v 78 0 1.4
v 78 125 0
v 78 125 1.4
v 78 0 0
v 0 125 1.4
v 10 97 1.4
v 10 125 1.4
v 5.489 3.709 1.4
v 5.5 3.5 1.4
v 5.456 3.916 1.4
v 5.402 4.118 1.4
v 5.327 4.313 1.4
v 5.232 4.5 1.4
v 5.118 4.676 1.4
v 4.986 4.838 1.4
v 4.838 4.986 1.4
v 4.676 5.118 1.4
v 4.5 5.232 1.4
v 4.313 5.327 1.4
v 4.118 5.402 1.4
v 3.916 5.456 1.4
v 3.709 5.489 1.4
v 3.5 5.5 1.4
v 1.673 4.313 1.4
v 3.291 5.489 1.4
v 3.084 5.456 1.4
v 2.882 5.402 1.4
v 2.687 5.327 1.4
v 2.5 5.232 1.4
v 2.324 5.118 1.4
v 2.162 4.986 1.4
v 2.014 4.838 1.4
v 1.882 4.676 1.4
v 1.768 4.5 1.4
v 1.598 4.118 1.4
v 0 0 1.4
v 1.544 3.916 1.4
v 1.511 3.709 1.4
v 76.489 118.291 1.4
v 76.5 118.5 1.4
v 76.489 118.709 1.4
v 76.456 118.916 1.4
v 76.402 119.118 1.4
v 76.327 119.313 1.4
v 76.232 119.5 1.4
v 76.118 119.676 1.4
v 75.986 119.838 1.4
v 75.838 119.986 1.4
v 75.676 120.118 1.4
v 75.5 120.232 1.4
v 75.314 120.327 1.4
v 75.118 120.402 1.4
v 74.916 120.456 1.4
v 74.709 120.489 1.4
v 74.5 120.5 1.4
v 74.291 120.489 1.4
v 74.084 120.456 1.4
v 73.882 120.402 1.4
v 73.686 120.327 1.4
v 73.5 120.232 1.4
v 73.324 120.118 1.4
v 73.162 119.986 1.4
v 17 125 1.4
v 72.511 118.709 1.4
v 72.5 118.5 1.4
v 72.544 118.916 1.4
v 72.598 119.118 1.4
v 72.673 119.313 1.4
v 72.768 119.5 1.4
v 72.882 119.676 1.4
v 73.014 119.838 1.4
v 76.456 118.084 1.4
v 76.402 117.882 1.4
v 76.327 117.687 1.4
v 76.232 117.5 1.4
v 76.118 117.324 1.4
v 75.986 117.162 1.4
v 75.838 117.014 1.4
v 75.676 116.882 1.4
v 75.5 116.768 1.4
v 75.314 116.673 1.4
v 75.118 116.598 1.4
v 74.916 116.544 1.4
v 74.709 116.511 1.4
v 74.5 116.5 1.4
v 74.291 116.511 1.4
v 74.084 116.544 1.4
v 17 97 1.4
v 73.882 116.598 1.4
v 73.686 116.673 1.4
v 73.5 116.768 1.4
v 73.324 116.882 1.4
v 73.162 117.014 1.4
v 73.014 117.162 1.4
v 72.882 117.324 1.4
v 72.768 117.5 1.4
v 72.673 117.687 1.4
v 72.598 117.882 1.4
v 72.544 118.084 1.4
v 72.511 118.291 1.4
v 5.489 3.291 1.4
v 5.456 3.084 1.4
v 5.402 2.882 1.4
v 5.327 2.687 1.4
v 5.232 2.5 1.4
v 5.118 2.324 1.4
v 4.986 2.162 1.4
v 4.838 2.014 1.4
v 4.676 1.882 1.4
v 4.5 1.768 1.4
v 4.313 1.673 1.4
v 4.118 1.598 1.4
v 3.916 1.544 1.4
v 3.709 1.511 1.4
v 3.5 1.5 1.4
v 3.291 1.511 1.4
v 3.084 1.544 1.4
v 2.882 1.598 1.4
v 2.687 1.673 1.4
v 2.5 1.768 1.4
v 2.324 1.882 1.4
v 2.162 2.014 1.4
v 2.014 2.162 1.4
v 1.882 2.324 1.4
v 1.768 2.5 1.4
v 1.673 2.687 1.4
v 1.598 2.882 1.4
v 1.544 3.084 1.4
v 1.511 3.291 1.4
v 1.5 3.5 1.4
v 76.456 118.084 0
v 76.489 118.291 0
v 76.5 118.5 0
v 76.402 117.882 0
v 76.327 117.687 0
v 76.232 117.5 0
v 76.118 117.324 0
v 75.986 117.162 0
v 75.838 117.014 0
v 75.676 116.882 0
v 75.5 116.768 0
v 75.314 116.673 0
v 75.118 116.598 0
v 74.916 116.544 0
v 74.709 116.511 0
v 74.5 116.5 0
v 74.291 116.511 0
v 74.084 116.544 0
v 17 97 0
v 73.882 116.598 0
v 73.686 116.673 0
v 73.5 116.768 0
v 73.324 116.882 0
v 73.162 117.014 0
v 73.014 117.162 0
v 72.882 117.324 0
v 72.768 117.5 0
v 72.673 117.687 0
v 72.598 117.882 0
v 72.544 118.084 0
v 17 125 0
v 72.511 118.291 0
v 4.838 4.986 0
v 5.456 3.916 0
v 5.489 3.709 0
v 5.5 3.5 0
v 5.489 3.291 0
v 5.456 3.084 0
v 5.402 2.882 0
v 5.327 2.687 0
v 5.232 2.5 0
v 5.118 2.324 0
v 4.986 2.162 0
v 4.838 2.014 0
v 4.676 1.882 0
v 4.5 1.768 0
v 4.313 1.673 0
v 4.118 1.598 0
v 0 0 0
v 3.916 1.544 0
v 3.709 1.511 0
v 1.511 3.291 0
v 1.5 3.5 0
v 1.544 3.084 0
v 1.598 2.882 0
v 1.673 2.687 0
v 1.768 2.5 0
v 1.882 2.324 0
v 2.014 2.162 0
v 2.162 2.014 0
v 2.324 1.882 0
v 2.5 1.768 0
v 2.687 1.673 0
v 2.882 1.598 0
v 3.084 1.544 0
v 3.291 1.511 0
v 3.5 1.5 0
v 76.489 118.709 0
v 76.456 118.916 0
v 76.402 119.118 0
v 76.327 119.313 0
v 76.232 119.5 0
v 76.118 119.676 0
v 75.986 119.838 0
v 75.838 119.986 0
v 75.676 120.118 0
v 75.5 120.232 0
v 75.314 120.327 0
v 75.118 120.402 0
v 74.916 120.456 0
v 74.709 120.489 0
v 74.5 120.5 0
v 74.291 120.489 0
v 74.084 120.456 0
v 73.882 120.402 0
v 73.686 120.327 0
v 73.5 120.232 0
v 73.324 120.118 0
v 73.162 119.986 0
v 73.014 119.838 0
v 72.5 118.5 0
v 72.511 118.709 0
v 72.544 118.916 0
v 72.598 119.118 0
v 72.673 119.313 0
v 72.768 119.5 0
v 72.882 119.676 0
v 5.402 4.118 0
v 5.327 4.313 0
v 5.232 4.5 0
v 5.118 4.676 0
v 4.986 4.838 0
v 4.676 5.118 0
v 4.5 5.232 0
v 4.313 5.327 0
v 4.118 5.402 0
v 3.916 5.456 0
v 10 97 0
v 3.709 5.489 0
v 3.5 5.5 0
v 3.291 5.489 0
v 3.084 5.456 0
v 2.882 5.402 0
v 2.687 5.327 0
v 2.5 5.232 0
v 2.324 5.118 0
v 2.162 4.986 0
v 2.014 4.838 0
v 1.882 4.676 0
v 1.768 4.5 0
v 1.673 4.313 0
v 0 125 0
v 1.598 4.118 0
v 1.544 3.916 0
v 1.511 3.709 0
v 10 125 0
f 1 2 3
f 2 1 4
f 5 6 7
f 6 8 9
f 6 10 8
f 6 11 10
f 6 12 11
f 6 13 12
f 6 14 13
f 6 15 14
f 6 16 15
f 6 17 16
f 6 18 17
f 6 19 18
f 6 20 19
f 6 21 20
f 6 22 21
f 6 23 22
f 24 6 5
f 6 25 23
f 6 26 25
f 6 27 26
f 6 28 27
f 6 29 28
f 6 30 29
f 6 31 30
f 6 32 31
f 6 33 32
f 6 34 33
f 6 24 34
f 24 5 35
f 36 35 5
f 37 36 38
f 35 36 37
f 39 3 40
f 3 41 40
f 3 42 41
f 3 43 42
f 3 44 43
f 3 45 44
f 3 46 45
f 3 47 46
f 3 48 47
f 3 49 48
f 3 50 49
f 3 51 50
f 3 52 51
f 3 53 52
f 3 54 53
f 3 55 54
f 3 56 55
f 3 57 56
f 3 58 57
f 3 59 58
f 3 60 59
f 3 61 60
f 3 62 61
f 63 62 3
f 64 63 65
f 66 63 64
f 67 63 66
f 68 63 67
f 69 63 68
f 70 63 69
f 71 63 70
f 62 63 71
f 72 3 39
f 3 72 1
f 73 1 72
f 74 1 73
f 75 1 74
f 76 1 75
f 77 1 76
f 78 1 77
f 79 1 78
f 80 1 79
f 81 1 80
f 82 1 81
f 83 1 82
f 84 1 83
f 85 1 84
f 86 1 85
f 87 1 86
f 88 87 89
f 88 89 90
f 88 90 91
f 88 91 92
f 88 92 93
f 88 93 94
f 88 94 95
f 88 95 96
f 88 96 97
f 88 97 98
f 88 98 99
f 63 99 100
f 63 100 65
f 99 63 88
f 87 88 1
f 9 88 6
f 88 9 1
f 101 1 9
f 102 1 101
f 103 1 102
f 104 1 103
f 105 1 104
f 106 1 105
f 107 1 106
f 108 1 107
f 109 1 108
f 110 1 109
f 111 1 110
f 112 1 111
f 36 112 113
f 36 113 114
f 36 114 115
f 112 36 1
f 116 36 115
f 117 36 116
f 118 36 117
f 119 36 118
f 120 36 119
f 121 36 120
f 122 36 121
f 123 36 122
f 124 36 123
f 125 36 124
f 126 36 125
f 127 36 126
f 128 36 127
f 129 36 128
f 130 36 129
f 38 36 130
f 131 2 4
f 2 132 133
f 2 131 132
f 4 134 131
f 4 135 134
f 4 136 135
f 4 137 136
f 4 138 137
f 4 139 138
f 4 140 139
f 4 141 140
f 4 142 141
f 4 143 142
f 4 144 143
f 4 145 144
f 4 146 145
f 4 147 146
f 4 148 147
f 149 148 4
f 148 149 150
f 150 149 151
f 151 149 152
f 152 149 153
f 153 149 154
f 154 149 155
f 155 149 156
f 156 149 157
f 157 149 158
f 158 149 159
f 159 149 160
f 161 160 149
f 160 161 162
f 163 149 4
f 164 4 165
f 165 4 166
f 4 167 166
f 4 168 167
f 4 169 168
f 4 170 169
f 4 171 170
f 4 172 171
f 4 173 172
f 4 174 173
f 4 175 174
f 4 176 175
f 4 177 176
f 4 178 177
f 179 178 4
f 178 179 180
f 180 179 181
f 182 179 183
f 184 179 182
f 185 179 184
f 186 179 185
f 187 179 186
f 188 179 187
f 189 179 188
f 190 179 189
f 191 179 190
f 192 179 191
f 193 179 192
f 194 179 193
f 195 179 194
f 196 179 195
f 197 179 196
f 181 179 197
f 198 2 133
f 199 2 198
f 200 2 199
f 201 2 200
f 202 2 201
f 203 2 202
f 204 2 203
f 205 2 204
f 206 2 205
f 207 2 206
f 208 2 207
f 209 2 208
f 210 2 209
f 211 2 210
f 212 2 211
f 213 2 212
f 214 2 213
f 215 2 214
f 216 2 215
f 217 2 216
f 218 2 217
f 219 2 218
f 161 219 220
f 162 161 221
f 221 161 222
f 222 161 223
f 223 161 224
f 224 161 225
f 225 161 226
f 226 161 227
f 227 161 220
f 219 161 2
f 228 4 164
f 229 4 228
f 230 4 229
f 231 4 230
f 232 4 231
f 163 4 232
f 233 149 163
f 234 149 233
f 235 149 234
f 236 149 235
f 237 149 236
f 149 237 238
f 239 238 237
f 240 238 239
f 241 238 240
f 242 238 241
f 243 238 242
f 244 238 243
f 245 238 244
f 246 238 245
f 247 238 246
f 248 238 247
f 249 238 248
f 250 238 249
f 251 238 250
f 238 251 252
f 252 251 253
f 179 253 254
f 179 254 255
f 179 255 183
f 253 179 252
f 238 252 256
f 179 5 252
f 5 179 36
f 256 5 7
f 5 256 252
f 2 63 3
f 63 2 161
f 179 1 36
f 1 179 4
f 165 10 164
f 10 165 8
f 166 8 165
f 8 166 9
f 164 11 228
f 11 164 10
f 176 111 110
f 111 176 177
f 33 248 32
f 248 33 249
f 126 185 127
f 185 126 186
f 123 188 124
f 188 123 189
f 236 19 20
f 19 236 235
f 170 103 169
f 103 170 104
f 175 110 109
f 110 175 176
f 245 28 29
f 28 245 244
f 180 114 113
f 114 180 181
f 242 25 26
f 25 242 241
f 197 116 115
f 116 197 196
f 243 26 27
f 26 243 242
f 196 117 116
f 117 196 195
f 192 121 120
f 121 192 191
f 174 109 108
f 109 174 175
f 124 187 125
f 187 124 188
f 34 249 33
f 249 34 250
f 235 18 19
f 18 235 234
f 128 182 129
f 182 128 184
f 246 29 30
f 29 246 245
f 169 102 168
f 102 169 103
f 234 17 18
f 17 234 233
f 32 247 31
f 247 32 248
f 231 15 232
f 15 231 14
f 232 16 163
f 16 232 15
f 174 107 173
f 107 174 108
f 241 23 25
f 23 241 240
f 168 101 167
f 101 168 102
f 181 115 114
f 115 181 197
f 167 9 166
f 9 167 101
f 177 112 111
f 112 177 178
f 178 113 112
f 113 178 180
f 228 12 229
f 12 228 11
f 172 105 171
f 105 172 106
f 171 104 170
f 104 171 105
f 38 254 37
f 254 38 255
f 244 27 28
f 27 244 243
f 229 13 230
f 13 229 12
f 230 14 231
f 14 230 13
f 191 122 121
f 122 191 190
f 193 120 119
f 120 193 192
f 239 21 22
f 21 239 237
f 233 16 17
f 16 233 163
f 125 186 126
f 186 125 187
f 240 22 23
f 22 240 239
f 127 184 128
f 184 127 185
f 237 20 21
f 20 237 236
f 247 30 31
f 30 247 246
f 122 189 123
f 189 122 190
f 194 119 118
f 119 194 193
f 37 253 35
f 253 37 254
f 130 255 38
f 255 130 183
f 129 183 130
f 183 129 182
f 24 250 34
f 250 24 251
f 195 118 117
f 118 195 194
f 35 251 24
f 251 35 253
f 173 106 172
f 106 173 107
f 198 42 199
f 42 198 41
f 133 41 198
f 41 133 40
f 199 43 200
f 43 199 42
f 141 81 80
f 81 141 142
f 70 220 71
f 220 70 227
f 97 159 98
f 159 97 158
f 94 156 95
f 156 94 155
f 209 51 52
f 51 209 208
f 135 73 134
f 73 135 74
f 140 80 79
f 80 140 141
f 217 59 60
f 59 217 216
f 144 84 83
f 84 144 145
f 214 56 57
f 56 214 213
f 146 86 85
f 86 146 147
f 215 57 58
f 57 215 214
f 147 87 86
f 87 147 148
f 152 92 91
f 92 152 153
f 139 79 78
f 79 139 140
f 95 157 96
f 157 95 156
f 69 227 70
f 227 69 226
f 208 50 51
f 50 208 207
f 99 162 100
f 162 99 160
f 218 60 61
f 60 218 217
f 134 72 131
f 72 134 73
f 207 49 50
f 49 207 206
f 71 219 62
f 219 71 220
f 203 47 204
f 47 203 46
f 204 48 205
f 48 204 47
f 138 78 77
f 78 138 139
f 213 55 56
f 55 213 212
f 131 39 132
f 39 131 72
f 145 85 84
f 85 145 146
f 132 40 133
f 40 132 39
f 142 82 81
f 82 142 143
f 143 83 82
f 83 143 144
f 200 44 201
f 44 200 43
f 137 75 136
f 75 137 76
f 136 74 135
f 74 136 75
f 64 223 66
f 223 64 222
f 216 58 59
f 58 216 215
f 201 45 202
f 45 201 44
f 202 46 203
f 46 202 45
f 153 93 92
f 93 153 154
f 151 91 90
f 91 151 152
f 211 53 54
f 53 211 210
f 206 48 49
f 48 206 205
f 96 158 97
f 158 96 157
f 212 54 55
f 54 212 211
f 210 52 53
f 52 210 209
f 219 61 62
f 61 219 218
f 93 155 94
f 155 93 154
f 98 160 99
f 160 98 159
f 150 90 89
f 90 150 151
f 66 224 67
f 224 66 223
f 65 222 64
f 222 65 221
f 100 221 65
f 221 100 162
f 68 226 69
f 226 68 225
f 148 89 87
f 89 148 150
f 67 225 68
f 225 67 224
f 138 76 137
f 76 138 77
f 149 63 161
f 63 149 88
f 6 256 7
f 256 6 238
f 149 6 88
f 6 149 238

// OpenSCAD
/*
BSD 2-Clause License

Copyright (c) 2020, Ewald Stangl
All rights reserved.

Redistribution and use in source and binary forms, with or without
modification, are permitted provided that the following conditions are met:

1. Redistributions of source code must retain the above copyright notice, this
   list of conditions and the following disclaimer.

2. Redistributions in binary form must reproduce the above copyright notice,
   this list of conditions and the following disclaimer in the documentation
   and/or other materials provided with the distribution.

THIS SOFTWARE IS PROVIDED BY THE COPYRIGHT HOLDERS AND CONTRIBUTORS "AS IS"
AND ANY EXPRESS OR IMPLIED WARRANTIES, INCLUDING, BUT NOT LIMITED TO, THE
IMPLIED WARRANTIES OF MERCHANTABILITY AND FITNESS FOR A PARTICULAR PURPOSE ARE
DISCLAIMED. IN NO EVENT SHALL THE COPYRIGHT HOLDER OR CONTRIBUTORS BE LIABLE
FOR ANY DIRECT, INDIRECT, INCIDENTAL, SPECIAL, EXEMPLARY, OR CONSEQUENTIAL
DAMAGES (INCLUDING, BUT NOT LIMITED TO, PROCUREMENT OF SUBSTITUTE GOODS OR
SERVICES; LOSS OF USE, DATA, OR PROFITS; OR BUSINESS INTERRUPTION) HOWEVER
CAUSED AND ON ANY THEORY OF LIABILITY, WHETHER IN CONTRACT, STRICT LIABILITY,
OR TORT (INCLUDING NEGLIGENCE OR OTHERWISE) ARISING IN ANY WAY OUT OF THE USE
OF THIS SOFTWARE, EVEN IF ADVISED OF THE POSSIBILITY OF SUCH DAMAGE.
*/

length = 78;
width = 125;
height = 1.4;


translate([0, 0, 0]) {
    difference() {
        cube([length, width, height]);
        
        translate([3.5, 3.5, -1]) {
            cylinder(d = 4, h = 5, $fn = 60);
        }
        
        translate([length - 3.5, width - 6.5, -1]) {
            cylinder(d = 4, h = 5, $fn = 60);
        }
        
        translate([10, width - 28, -1]) {
            cube([7, 35, 5]);
        }
    }
}
